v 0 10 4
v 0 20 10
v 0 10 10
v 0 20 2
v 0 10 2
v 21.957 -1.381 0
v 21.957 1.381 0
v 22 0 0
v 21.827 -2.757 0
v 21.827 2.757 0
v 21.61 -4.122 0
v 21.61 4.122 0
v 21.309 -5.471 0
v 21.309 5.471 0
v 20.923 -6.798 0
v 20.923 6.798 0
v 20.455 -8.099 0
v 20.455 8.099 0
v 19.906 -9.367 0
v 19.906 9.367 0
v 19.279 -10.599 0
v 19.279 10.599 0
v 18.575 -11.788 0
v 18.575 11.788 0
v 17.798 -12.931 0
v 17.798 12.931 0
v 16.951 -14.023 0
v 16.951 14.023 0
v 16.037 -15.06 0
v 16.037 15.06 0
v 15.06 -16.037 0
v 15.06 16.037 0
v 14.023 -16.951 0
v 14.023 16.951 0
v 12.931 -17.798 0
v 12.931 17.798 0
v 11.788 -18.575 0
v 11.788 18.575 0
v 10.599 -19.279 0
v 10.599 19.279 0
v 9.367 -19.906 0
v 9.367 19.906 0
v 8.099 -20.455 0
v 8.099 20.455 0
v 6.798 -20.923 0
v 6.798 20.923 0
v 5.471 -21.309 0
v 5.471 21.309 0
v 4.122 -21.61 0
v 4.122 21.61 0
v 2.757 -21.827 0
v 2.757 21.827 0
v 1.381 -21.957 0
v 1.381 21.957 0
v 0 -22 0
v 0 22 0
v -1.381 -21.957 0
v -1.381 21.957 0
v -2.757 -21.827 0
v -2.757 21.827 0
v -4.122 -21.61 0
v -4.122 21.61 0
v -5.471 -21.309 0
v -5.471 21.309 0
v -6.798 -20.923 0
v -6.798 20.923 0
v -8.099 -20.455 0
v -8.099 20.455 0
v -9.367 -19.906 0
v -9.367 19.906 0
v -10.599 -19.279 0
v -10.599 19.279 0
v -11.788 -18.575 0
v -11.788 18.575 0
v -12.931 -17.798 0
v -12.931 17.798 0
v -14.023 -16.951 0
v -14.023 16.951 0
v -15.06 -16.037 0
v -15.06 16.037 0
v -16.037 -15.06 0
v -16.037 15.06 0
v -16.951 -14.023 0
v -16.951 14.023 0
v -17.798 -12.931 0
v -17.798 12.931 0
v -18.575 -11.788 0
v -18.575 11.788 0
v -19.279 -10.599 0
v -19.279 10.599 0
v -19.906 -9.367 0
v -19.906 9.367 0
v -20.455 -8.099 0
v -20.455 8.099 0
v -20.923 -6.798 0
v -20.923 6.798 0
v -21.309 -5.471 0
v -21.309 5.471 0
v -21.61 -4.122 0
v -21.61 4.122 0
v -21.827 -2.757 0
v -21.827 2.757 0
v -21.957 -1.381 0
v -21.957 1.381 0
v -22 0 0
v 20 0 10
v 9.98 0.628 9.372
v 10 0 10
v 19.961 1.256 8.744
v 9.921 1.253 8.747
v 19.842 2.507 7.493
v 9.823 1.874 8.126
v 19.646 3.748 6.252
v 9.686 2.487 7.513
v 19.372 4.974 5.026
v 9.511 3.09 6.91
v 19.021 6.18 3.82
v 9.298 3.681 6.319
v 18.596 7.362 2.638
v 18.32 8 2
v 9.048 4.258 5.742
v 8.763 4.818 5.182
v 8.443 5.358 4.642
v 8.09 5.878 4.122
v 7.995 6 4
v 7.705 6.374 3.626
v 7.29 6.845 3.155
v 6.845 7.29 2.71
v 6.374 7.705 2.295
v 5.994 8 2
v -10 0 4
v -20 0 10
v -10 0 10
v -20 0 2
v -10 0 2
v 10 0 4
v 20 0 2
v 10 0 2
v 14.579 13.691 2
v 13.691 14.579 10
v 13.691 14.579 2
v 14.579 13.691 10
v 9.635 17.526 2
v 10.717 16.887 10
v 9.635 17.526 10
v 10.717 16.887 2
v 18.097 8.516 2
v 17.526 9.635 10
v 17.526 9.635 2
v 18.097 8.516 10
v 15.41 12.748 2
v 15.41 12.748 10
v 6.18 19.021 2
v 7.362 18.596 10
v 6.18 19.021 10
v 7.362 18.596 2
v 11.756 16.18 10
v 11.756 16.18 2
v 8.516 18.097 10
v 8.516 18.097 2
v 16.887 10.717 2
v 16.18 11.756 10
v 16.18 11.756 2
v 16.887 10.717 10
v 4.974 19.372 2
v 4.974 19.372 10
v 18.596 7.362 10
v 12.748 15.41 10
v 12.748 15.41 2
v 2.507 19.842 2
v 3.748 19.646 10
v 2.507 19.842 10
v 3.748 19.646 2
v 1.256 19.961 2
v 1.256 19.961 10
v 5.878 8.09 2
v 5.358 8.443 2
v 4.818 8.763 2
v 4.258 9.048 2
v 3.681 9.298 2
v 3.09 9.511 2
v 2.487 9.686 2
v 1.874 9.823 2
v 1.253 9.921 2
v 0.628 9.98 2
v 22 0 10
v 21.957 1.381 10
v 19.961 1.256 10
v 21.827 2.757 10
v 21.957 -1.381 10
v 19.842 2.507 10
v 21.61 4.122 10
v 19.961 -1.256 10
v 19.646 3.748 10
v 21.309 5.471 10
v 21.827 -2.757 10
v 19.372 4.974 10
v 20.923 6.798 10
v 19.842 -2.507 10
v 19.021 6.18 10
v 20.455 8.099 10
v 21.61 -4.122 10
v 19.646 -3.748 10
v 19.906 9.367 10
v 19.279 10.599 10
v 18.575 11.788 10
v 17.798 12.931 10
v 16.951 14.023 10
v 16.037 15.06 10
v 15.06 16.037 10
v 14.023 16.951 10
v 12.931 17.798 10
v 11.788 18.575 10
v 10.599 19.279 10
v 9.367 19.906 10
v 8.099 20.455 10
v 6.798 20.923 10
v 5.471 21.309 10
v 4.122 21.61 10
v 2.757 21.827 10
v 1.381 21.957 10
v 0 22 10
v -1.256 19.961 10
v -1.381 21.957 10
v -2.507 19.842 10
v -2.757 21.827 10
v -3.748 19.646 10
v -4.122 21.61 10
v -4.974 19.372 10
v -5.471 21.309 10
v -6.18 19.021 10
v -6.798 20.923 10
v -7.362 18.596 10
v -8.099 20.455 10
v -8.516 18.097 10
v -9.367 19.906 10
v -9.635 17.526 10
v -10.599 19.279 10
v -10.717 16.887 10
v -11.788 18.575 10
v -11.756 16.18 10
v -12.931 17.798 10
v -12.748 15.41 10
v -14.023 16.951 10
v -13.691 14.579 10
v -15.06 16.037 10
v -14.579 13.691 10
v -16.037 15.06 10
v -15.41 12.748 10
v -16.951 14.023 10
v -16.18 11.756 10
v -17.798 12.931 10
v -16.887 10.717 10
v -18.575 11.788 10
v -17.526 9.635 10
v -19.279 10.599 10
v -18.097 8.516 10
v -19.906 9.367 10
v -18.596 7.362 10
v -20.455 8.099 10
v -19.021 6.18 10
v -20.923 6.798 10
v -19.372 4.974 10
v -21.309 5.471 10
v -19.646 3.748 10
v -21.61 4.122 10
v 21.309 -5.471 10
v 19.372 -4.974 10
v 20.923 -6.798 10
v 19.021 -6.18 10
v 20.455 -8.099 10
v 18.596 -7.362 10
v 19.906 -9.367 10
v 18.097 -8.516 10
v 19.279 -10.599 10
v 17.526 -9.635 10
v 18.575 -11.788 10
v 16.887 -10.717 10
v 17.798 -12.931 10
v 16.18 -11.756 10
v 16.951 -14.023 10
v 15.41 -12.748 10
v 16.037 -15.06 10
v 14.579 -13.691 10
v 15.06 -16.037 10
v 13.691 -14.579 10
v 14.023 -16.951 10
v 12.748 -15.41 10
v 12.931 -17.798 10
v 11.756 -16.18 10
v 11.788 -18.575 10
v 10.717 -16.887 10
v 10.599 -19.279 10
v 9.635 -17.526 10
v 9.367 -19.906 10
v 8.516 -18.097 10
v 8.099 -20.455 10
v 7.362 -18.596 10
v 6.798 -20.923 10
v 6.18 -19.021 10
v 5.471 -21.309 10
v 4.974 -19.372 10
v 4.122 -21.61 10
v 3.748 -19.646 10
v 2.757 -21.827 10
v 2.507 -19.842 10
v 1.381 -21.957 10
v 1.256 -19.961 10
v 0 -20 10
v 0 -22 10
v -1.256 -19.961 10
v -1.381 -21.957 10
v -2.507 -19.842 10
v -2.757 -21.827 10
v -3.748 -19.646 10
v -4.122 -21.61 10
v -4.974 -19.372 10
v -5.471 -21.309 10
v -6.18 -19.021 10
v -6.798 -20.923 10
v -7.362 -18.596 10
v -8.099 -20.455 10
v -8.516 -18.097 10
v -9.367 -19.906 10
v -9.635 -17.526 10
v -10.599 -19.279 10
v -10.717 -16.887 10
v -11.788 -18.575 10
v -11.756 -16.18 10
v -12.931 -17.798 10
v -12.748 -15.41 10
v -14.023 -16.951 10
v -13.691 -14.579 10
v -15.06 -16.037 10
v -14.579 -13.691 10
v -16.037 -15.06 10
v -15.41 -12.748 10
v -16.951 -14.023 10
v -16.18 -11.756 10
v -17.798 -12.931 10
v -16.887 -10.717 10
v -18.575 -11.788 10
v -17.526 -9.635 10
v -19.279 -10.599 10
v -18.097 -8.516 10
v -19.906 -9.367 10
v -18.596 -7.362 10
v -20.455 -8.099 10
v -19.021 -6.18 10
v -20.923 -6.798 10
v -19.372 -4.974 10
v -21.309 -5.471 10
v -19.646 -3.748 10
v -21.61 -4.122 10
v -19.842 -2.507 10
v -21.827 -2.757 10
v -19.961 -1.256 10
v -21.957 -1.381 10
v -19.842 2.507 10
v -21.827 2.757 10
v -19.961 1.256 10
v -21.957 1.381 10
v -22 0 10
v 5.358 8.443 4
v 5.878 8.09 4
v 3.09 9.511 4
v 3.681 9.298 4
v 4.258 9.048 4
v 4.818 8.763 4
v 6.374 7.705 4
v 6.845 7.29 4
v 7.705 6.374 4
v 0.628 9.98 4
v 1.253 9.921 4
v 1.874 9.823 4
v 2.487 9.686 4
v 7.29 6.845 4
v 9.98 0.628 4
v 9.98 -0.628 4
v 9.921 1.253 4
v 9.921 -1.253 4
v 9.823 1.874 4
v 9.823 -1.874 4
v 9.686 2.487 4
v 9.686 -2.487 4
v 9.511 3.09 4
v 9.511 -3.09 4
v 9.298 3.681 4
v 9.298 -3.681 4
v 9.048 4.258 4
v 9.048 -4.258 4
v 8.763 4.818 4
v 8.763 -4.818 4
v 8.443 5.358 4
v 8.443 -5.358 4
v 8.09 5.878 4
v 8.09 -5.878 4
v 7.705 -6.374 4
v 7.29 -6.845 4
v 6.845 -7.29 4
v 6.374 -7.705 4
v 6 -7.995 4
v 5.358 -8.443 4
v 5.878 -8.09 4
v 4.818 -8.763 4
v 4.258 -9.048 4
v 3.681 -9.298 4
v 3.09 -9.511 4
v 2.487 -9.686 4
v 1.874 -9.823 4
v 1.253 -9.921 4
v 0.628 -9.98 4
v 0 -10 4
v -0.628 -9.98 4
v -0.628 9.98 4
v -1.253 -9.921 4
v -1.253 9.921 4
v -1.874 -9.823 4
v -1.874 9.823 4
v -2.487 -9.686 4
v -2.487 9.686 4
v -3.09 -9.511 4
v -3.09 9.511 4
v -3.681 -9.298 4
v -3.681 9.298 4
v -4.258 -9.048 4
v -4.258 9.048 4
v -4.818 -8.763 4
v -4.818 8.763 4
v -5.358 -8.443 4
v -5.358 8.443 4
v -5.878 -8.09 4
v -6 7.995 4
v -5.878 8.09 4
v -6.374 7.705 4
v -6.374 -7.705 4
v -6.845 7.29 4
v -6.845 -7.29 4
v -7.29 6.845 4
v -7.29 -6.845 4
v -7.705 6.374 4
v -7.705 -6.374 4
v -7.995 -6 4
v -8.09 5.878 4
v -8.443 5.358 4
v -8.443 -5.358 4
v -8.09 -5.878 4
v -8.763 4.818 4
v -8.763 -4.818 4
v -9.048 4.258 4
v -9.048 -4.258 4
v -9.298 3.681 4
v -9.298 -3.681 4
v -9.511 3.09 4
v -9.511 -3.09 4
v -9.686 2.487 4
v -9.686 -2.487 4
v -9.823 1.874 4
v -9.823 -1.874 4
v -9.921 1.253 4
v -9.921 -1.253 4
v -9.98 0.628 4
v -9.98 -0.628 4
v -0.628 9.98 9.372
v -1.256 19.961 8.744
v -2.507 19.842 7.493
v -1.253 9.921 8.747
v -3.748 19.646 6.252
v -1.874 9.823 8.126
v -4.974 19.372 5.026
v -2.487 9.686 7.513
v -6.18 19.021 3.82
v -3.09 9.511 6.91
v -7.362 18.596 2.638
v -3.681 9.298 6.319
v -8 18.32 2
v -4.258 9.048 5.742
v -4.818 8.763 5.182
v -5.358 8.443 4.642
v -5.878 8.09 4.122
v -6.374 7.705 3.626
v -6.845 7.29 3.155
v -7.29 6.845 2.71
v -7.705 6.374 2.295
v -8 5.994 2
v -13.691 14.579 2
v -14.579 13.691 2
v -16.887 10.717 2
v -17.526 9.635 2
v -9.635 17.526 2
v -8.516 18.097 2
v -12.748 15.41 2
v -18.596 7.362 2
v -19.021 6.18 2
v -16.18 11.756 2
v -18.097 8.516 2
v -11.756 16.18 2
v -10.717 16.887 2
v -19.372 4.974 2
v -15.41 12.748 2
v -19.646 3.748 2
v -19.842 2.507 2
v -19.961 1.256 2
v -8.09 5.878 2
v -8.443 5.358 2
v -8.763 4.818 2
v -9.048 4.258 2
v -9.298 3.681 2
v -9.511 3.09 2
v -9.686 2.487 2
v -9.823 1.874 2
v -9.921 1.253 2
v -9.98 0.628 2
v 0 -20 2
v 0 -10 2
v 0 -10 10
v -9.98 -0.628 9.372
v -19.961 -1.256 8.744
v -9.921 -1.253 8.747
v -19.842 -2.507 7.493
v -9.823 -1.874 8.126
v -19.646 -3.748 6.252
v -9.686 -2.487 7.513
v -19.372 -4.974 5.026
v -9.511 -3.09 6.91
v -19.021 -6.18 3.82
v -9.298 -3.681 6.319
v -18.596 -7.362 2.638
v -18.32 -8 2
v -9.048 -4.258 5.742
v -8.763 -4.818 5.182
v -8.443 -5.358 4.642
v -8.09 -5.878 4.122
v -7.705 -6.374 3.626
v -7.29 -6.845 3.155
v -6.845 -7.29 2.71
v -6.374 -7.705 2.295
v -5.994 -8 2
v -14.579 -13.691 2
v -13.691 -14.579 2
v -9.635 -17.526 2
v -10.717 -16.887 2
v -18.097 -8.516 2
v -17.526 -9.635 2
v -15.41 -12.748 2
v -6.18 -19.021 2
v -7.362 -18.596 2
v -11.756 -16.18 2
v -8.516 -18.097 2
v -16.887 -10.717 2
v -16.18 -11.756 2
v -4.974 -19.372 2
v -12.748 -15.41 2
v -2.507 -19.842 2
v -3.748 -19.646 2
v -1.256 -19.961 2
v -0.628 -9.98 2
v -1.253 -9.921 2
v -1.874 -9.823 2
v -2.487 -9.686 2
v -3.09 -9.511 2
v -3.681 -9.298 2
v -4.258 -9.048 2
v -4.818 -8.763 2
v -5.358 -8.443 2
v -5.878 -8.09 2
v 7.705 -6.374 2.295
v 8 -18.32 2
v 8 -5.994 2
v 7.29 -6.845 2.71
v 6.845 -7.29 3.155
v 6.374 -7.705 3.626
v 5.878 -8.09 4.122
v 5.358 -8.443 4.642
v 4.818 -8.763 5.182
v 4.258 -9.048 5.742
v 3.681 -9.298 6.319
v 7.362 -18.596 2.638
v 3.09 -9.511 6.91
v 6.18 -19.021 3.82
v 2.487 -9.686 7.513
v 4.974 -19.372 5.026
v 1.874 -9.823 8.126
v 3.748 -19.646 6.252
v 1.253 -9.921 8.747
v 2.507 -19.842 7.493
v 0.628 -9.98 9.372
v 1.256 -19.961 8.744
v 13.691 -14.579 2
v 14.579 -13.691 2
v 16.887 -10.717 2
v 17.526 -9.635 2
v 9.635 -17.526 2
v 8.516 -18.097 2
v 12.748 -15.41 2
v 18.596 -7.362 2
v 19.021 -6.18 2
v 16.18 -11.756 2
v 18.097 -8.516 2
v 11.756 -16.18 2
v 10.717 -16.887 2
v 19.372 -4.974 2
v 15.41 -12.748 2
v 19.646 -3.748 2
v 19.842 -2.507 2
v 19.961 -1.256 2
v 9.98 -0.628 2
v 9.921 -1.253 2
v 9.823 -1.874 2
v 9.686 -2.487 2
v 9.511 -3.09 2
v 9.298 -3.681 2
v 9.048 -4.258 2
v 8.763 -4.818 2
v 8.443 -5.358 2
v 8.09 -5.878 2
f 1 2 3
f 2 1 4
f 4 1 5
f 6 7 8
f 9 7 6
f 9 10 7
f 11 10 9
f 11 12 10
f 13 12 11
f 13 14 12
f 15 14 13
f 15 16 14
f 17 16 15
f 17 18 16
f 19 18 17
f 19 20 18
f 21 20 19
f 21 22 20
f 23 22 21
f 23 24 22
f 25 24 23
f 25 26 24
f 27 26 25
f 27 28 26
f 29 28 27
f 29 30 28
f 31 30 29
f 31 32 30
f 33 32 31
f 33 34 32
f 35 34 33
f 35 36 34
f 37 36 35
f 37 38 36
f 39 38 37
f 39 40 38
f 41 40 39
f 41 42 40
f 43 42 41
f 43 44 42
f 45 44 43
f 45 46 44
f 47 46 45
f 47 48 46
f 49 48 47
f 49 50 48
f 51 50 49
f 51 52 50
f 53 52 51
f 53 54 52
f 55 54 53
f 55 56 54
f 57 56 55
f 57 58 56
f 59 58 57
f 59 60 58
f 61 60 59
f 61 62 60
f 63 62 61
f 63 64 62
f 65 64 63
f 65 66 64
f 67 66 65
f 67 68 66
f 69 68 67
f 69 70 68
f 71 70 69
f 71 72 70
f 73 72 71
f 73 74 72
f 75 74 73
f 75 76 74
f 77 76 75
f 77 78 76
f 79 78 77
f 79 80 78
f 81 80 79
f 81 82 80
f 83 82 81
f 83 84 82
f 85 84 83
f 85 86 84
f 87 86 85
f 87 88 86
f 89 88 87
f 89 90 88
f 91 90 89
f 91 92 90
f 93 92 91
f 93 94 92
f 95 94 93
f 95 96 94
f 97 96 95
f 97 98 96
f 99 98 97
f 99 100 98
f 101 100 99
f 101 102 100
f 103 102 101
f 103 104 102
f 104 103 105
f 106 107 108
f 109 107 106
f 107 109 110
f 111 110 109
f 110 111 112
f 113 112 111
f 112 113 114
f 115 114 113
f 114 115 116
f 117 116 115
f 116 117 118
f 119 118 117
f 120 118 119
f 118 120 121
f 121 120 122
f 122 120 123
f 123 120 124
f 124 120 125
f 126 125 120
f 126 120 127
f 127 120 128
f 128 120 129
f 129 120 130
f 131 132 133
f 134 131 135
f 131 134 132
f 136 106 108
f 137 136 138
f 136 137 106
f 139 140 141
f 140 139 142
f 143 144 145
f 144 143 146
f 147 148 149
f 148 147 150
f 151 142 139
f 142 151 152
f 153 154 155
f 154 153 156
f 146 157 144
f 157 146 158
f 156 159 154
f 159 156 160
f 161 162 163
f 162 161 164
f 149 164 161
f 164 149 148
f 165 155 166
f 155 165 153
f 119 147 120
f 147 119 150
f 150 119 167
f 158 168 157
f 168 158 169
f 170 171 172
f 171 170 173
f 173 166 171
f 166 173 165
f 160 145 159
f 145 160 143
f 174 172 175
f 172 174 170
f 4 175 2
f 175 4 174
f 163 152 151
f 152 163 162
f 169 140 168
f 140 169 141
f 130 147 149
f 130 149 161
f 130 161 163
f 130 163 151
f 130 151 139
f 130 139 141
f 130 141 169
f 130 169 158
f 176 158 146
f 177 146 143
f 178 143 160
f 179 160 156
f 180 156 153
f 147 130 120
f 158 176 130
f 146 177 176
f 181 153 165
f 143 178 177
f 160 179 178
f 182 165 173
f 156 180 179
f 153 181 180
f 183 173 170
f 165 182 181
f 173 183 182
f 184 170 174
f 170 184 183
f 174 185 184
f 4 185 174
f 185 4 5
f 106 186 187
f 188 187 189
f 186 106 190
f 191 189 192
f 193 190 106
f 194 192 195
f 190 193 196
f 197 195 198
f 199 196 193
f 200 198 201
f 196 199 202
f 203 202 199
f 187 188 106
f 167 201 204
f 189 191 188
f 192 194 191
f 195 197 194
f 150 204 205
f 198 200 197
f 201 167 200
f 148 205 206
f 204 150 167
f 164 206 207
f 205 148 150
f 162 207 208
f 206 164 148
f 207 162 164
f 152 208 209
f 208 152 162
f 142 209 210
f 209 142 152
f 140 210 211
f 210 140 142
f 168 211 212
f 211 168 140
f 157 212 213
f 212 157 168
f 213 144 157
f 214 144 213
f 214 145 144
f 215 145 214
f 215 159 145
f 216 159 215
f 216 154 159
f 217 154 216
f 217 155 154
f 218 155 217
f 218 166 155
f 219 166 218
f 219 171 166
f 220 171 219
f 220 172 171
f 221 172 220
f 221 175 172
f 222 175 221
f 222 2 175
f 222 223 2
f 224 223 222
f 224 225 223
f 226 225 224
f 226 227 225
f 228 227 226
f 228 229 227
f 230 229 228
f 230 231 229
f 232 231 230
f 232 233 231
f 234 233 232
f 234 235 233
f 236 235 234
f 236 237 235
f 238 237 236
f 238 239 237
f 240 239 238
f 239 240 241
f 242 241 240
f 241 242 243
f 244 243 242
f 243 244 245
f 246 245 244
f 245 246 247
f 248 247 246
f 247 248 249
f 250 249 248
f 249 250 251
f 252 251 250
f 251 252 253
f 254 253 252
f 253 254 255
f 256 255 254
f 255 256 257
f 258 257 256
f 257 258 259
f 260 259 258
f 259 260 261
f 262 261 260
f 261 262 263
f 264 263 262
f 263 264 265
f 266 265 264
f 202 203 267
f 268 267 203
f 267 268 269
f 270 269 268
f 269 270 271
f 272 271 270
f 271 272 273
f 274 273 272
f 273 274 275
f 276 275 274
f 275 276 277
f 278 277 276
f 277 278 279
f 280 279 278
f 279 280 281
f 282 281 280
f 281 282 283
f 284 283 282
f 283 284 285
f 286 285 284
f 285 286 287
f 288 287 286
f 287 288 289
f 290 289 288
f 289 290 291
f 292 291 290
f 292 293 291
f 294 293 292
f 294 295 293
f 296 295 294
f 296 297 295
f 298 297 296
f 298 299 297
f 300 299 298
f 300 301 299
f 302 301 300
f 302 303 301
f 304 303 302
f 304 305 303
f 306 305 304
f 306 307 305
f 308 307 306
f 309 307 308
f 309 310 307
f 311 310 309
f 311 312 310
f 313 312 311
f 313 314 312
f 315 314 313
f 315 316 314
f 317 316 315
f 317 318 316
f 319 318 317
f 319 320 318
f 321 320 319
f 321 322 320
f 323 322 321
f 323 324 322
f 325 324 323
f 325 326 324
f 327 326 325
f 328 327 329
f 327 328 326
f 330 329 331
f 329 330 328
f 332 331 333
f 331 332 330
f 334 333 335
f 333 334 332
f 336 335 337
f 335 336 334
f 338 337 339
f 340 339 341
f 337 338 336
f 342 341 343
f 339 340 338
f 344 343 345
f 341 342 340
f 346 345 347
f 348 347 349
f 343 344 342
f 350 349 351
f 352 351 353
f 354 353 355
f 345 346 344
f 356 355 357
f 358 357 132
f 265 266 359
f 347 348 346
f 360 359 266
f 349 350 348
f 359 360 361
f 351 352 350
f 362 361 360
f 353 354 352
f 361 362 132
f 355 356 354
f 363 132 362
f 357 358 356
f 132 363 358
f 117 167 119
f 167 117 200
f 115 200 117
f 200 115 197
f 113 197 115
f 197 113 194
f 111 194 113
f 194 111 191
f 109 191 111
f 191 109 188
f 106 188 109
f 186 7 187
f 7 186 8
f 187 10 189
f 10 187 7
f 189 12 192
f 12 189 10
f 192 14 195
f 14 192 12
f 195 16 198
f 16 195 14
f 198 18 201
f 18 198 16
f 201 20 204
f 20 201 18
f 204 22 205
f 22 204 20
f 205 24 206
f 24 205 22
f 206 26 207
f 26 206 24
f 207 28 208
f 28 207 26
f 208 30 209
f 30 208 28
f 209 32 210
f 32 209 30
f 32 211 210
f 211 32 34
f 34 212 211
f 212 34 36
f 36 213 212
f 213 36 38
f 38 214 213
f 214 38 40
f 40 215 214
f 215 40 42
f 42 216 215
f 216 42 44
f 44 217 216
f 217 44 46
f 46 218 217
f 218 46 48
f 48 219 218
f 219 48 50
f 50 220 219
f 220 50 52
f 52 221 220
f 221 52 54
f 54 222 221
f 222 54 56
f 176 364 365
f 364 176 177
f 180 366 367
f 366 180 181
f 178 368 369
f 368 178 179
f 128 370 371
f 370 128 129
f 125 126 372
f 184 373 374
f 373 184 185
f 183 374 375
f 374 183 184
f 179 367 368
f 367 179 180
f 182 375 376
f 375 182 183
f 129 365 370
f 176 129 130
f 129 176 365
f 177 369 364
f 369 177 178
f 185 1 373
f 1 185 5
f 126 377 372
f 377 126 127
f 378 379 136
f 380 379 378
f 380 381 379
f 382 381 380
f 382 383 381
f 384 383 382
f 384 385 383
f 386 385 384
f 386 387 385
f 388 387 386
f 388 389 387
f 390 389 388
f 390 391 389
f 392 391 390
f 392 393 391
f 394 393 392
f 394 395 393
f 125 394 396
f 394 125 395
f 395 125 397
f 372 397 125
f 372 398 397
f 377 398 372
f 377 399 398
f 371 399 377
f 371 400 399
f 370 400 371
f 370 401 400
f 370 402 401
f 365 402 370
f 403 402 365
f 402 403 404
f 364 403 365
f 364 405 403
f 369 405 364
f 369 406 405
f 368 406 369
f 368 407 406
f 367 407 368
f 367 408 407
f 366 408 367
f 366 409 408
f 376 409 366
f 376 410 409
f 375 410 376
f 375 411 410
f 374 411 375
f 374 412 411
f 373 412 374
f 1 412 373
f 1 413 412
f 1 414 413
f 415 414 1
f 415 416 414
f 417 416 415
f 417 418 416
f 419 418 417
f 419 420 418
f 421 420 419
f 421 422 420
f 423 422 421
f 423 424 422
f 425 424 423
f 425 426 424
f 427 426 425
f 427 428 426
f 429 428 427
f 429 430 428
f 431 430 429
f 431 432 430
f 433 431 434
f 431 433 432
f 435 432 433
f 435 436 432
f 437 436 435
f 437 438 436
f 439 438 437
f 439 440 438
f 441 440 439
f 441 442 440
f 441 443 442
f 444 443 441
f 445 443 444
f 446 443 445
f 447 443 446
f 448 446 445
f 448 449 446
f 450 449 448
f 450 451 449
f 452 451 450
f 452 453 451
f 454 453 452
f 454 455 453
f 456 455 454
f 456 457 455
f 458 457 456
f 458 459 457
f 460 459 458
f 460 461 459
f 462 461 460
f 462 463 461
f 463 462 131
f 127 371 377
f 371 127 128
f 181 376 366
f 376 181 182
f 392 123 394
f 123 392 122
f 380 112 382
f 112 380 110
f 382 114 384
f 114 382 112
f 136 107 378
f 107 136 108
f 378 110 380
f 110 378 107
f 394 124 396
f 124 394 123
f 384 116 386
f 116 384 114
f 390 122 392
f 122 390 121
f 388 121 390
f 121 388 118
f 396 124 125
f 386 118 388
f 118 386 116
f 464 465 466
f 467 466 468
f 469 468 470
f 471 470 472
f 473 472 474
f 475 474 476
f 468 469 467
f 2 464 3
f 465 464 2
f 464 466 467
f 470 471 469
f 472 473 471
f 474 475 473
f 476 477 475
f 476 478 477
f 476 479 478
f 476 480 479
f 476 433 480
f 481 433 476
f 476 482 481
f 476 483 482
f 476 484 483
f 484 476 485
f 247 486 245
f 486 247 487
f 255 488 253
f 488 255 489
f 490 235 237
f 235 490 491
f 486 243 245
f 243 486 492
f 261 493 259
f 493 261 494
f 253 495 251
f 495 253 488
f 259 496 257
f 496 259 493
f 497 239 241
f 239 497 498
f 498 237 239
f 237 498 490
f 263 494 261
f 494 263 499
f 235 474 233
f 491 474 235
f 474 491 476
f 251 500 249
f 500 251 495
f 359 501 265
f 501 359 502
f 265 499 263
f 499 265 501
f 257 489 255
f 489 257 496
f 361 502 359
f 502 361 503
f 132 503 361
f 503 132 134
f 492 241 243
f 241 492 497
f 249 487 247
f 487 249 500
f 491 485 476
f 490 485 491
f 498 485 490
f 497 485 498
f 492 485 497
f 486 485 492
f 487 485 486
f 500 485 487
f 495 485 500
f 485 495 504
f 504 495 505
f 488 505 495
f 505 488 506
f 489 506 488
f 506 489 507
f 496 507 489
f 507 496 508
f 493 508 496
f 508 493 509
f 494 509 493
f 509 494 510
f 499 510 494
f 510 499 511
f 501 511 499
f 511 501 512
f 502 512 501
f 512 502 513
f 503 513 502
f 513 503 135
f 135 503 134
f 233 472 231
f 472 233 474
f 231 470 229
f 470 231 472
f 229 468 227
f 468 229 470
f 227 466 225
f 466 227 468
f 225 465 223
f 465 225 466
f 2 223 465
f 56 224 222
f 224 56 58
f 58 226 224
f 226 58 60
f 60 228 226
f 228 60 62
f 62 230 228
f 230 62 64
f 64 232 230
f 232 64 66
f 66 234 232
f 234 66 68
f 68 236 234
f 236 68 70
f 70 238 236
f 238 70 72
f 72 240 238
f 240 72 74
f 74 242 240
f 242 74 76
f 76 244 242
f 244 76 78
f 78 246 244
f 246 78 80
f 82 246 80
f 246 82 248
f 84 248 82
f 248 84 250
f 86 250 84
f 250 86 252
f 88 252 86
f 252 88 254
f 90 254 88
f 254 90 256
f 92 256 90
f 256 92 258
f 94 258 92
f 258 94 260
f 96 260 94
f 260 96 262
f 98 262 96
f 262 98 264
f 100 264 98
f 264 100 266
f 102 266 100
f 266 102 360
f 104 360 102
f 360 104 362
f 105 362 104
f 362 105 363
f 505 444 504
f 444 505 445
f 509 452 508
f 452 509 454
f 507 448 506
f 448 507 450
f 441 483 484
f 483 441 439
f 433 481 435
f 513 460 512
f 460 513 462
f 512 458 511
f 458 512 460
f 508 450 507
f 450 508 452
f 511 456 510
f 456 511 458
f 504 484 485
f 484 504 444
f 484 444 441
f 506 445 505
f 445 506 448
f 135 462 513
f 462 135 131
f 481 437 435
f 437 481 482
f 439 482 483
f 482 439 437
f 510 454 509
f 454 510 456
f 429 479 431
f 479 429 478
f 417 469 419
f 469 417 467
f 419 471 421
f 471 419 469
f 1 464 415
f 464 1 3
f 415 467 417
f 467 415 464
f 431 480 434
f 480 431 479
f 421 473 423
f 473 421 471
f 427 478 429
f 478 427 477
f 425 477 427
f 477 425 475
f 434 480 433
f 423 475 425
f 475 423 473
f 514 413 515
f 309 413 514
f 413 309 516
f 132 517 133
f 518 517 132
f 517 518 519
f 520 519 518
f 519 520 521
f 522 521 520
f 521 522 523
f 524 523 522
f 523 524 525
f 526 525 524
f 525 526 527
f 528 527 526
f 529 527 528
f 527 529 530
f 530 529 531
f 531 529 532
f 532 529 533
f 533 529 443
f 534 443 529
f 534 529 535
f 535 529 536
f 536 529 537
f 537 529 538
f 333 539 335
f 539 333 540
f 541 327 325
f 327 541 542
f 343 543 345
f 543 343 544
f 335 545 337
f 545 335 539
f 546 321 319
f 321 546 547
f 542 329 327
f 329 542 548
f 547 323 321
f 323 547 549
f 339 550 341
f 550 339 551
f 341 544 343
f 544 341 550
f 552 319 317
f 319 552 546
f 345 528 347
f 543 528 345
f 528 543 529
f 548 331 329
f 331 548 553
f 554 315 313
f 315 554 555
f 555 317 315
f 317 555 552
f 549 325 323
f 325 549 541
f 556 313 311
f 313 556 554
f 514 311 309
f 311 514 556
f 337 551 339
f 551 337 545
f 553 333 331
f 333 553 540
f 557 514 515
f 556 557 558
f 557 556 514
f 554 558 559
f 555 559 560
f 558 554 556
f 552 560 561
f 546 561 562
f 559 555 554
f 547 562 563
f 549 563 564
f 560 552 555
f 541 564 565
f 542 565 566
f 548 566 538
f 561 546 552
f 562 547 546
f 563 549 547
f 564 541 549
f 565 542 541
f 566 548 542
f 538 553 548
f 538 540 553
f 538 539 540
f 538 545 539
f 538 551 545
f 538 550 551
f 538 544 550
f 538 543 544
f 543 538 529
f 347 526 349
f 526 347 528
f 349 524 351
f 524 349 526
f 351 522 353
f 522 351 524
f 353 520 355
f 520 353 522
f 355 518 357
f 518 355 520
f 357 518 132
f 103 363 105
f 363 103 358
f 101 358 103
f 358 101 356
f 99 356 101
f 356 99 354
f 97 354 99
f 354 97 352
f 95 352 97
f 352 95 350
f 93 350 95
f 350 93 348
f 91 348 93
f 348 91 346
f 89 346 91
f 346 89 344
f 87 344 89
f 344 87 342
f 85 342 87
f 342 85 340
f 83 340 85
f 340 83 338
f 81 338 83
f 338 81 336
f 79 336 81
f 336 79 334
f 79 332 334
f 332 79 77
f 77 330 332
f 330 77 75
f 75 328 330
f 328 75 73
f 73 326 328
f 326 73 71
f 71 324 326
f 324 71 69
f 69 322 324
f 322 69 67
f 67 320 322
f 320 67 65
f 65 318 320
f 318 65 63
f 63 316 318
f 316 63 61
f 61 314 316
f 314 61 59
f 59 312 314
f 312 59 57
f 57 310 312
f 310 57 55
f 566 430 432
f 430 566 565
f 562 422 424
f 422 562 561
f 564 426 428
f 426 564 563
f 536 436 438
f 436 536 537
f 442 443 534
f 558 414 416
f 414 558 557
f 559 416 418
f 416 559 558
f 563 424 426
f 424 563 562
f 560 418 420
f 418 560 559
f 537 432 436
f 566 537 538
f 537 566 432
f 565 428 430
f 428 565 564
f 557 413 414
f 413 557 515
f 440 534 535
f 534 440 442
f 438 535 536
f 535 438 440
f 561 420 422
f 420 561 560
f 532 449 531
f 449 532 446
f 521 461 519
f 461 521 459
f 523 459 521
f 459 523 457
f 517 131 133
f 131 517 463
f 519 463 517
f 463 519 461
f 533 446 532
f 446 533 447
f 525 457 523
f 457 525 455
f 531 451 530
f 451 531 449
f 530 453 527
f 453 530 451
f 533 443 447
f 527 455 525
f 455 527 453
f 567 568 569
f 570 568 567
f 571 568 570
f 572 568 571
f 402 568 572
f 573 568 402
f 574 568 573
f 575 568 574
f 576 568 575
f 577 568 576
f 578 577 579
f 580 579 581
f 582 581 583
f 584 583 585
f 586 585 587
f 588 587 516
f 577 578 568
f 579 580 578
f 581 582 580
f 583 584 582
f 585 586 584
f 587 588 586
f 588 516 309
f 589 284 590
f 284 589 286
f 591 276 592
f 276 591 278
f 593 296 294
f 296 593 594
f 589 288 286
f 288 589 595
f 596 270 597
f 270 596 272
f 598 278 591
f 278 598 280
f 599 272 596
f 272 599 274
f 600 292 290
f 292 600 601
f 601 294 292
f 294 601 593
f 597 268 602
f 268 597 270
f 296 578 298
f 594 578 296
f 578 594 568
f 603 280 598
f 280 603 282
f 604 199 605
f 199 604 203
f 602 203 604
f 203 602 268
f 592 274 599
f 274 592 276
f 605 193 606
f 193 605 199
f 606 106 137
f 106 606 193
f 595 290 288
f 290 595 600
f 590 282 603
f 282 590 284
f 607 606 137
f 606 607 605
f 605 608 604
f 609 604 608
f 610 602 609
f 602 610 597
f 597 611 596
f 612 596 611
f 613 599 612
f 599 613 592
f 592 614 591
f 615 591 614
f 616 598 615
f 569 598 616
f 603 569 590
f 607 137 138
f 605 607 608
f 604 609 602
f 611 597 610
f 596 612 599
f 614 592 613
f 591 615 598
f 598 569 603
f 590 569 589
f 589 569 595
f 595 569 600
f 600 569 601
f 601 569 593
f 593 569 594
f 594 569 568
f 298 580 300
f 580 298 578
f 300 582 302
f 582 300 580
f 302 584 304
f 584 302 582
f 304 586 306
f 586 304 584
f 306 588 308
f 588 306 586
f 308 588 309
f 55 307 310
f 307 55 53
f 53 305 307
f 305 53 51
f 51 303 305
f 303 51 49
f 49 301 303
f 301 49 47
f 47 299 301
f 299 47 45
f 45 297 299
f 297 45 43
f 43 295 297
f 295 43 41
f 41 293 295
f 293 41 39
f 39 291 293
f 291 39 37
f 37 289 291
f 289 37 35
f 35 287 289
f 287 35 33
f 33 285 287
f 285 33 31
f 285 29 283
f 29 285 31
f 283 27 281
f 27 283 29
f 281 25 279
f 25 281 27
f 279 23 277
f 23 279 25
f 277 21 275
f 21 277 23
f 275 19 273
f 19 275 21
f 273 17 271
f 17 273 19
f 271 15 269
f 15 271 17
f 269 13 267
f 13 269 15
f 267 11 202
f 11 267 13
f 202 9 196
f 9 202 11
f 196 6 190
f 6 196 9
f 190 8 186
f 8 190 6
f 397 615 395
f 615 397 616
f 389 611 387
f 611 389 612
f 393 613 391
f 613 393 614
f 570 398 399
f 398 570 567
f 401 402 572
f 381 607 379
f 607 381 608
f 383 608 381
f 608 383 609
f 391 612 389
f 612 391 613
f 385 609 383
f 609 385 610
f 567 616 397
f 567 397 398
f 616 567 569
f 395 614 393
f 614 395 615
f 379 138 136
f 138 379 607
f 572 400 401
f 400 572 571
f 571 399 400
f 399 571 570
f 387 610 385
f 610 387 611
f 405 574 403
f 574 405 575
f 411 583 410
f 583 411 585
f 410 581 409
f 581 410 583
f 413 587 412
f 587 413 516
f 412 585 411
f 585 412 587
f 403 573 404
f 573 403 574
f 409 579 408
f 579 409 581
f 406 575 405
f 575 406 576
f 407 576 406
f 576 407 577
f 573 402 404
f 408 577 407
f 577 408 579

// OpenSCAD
R1=10;
R2=20;
WALL=2;
HEIGHT=10;
BASE_HEIGHT=2;
MID_HEIGHT=4;
$fn=100;

for (a=[0:90:360])rotate([0,0,a])quarter();

module quarter() {
    difference(){
        union() {
            // Tooth
            rotate([90,0,90])
                linear_extrude(R2, false)
                    polygon([[0,0],[R1,0], [0,HEIGHT]]);
            // Base
            linear_extrude(BASE_HEIGHT)
            sector(R2,[0,90]);
            // Wall
            linear_extrude(HEIGHT)
                arc(R2,[0,90],WALL);
            // Mid
            linear_extrude(MID_HEIGHT)
                sector(R1, [0,90]);
        }
        
        // Slicing Wall
        translate([0,0,-HEIGHT/2])
        linear_extrude(HEIGHT*2)
        arc(R2+WALL,[0,90],WALL*2);
        
        // Slicing mid
        translate([0,0,MID_HEIGHT])
            cylinder(HEIGHT*2, R1, R1);
    }
}
    
module sector(radius, angles, fn = $fn) {
    r = radius / cos(180 / fn);
    step = -360 / fn;

    points = concat([[0, 0]],
        [for(a = [angles[0] : step : angles[1] - 360]) 
            [r * cos(a), r * sin(a)]
        ],
        [[r * cos(angles[1]), r * sin(angles[1])]]
    );

    difference() {
        circle(radius, $fn = fn);
        polygon(points);
    }
}

module arc(radius, angles, width = 1, fn = $fn) {
    difference() {
        sector(radius + width, angles, fn);
        sector(radius, angles, fn);
    }
} 
